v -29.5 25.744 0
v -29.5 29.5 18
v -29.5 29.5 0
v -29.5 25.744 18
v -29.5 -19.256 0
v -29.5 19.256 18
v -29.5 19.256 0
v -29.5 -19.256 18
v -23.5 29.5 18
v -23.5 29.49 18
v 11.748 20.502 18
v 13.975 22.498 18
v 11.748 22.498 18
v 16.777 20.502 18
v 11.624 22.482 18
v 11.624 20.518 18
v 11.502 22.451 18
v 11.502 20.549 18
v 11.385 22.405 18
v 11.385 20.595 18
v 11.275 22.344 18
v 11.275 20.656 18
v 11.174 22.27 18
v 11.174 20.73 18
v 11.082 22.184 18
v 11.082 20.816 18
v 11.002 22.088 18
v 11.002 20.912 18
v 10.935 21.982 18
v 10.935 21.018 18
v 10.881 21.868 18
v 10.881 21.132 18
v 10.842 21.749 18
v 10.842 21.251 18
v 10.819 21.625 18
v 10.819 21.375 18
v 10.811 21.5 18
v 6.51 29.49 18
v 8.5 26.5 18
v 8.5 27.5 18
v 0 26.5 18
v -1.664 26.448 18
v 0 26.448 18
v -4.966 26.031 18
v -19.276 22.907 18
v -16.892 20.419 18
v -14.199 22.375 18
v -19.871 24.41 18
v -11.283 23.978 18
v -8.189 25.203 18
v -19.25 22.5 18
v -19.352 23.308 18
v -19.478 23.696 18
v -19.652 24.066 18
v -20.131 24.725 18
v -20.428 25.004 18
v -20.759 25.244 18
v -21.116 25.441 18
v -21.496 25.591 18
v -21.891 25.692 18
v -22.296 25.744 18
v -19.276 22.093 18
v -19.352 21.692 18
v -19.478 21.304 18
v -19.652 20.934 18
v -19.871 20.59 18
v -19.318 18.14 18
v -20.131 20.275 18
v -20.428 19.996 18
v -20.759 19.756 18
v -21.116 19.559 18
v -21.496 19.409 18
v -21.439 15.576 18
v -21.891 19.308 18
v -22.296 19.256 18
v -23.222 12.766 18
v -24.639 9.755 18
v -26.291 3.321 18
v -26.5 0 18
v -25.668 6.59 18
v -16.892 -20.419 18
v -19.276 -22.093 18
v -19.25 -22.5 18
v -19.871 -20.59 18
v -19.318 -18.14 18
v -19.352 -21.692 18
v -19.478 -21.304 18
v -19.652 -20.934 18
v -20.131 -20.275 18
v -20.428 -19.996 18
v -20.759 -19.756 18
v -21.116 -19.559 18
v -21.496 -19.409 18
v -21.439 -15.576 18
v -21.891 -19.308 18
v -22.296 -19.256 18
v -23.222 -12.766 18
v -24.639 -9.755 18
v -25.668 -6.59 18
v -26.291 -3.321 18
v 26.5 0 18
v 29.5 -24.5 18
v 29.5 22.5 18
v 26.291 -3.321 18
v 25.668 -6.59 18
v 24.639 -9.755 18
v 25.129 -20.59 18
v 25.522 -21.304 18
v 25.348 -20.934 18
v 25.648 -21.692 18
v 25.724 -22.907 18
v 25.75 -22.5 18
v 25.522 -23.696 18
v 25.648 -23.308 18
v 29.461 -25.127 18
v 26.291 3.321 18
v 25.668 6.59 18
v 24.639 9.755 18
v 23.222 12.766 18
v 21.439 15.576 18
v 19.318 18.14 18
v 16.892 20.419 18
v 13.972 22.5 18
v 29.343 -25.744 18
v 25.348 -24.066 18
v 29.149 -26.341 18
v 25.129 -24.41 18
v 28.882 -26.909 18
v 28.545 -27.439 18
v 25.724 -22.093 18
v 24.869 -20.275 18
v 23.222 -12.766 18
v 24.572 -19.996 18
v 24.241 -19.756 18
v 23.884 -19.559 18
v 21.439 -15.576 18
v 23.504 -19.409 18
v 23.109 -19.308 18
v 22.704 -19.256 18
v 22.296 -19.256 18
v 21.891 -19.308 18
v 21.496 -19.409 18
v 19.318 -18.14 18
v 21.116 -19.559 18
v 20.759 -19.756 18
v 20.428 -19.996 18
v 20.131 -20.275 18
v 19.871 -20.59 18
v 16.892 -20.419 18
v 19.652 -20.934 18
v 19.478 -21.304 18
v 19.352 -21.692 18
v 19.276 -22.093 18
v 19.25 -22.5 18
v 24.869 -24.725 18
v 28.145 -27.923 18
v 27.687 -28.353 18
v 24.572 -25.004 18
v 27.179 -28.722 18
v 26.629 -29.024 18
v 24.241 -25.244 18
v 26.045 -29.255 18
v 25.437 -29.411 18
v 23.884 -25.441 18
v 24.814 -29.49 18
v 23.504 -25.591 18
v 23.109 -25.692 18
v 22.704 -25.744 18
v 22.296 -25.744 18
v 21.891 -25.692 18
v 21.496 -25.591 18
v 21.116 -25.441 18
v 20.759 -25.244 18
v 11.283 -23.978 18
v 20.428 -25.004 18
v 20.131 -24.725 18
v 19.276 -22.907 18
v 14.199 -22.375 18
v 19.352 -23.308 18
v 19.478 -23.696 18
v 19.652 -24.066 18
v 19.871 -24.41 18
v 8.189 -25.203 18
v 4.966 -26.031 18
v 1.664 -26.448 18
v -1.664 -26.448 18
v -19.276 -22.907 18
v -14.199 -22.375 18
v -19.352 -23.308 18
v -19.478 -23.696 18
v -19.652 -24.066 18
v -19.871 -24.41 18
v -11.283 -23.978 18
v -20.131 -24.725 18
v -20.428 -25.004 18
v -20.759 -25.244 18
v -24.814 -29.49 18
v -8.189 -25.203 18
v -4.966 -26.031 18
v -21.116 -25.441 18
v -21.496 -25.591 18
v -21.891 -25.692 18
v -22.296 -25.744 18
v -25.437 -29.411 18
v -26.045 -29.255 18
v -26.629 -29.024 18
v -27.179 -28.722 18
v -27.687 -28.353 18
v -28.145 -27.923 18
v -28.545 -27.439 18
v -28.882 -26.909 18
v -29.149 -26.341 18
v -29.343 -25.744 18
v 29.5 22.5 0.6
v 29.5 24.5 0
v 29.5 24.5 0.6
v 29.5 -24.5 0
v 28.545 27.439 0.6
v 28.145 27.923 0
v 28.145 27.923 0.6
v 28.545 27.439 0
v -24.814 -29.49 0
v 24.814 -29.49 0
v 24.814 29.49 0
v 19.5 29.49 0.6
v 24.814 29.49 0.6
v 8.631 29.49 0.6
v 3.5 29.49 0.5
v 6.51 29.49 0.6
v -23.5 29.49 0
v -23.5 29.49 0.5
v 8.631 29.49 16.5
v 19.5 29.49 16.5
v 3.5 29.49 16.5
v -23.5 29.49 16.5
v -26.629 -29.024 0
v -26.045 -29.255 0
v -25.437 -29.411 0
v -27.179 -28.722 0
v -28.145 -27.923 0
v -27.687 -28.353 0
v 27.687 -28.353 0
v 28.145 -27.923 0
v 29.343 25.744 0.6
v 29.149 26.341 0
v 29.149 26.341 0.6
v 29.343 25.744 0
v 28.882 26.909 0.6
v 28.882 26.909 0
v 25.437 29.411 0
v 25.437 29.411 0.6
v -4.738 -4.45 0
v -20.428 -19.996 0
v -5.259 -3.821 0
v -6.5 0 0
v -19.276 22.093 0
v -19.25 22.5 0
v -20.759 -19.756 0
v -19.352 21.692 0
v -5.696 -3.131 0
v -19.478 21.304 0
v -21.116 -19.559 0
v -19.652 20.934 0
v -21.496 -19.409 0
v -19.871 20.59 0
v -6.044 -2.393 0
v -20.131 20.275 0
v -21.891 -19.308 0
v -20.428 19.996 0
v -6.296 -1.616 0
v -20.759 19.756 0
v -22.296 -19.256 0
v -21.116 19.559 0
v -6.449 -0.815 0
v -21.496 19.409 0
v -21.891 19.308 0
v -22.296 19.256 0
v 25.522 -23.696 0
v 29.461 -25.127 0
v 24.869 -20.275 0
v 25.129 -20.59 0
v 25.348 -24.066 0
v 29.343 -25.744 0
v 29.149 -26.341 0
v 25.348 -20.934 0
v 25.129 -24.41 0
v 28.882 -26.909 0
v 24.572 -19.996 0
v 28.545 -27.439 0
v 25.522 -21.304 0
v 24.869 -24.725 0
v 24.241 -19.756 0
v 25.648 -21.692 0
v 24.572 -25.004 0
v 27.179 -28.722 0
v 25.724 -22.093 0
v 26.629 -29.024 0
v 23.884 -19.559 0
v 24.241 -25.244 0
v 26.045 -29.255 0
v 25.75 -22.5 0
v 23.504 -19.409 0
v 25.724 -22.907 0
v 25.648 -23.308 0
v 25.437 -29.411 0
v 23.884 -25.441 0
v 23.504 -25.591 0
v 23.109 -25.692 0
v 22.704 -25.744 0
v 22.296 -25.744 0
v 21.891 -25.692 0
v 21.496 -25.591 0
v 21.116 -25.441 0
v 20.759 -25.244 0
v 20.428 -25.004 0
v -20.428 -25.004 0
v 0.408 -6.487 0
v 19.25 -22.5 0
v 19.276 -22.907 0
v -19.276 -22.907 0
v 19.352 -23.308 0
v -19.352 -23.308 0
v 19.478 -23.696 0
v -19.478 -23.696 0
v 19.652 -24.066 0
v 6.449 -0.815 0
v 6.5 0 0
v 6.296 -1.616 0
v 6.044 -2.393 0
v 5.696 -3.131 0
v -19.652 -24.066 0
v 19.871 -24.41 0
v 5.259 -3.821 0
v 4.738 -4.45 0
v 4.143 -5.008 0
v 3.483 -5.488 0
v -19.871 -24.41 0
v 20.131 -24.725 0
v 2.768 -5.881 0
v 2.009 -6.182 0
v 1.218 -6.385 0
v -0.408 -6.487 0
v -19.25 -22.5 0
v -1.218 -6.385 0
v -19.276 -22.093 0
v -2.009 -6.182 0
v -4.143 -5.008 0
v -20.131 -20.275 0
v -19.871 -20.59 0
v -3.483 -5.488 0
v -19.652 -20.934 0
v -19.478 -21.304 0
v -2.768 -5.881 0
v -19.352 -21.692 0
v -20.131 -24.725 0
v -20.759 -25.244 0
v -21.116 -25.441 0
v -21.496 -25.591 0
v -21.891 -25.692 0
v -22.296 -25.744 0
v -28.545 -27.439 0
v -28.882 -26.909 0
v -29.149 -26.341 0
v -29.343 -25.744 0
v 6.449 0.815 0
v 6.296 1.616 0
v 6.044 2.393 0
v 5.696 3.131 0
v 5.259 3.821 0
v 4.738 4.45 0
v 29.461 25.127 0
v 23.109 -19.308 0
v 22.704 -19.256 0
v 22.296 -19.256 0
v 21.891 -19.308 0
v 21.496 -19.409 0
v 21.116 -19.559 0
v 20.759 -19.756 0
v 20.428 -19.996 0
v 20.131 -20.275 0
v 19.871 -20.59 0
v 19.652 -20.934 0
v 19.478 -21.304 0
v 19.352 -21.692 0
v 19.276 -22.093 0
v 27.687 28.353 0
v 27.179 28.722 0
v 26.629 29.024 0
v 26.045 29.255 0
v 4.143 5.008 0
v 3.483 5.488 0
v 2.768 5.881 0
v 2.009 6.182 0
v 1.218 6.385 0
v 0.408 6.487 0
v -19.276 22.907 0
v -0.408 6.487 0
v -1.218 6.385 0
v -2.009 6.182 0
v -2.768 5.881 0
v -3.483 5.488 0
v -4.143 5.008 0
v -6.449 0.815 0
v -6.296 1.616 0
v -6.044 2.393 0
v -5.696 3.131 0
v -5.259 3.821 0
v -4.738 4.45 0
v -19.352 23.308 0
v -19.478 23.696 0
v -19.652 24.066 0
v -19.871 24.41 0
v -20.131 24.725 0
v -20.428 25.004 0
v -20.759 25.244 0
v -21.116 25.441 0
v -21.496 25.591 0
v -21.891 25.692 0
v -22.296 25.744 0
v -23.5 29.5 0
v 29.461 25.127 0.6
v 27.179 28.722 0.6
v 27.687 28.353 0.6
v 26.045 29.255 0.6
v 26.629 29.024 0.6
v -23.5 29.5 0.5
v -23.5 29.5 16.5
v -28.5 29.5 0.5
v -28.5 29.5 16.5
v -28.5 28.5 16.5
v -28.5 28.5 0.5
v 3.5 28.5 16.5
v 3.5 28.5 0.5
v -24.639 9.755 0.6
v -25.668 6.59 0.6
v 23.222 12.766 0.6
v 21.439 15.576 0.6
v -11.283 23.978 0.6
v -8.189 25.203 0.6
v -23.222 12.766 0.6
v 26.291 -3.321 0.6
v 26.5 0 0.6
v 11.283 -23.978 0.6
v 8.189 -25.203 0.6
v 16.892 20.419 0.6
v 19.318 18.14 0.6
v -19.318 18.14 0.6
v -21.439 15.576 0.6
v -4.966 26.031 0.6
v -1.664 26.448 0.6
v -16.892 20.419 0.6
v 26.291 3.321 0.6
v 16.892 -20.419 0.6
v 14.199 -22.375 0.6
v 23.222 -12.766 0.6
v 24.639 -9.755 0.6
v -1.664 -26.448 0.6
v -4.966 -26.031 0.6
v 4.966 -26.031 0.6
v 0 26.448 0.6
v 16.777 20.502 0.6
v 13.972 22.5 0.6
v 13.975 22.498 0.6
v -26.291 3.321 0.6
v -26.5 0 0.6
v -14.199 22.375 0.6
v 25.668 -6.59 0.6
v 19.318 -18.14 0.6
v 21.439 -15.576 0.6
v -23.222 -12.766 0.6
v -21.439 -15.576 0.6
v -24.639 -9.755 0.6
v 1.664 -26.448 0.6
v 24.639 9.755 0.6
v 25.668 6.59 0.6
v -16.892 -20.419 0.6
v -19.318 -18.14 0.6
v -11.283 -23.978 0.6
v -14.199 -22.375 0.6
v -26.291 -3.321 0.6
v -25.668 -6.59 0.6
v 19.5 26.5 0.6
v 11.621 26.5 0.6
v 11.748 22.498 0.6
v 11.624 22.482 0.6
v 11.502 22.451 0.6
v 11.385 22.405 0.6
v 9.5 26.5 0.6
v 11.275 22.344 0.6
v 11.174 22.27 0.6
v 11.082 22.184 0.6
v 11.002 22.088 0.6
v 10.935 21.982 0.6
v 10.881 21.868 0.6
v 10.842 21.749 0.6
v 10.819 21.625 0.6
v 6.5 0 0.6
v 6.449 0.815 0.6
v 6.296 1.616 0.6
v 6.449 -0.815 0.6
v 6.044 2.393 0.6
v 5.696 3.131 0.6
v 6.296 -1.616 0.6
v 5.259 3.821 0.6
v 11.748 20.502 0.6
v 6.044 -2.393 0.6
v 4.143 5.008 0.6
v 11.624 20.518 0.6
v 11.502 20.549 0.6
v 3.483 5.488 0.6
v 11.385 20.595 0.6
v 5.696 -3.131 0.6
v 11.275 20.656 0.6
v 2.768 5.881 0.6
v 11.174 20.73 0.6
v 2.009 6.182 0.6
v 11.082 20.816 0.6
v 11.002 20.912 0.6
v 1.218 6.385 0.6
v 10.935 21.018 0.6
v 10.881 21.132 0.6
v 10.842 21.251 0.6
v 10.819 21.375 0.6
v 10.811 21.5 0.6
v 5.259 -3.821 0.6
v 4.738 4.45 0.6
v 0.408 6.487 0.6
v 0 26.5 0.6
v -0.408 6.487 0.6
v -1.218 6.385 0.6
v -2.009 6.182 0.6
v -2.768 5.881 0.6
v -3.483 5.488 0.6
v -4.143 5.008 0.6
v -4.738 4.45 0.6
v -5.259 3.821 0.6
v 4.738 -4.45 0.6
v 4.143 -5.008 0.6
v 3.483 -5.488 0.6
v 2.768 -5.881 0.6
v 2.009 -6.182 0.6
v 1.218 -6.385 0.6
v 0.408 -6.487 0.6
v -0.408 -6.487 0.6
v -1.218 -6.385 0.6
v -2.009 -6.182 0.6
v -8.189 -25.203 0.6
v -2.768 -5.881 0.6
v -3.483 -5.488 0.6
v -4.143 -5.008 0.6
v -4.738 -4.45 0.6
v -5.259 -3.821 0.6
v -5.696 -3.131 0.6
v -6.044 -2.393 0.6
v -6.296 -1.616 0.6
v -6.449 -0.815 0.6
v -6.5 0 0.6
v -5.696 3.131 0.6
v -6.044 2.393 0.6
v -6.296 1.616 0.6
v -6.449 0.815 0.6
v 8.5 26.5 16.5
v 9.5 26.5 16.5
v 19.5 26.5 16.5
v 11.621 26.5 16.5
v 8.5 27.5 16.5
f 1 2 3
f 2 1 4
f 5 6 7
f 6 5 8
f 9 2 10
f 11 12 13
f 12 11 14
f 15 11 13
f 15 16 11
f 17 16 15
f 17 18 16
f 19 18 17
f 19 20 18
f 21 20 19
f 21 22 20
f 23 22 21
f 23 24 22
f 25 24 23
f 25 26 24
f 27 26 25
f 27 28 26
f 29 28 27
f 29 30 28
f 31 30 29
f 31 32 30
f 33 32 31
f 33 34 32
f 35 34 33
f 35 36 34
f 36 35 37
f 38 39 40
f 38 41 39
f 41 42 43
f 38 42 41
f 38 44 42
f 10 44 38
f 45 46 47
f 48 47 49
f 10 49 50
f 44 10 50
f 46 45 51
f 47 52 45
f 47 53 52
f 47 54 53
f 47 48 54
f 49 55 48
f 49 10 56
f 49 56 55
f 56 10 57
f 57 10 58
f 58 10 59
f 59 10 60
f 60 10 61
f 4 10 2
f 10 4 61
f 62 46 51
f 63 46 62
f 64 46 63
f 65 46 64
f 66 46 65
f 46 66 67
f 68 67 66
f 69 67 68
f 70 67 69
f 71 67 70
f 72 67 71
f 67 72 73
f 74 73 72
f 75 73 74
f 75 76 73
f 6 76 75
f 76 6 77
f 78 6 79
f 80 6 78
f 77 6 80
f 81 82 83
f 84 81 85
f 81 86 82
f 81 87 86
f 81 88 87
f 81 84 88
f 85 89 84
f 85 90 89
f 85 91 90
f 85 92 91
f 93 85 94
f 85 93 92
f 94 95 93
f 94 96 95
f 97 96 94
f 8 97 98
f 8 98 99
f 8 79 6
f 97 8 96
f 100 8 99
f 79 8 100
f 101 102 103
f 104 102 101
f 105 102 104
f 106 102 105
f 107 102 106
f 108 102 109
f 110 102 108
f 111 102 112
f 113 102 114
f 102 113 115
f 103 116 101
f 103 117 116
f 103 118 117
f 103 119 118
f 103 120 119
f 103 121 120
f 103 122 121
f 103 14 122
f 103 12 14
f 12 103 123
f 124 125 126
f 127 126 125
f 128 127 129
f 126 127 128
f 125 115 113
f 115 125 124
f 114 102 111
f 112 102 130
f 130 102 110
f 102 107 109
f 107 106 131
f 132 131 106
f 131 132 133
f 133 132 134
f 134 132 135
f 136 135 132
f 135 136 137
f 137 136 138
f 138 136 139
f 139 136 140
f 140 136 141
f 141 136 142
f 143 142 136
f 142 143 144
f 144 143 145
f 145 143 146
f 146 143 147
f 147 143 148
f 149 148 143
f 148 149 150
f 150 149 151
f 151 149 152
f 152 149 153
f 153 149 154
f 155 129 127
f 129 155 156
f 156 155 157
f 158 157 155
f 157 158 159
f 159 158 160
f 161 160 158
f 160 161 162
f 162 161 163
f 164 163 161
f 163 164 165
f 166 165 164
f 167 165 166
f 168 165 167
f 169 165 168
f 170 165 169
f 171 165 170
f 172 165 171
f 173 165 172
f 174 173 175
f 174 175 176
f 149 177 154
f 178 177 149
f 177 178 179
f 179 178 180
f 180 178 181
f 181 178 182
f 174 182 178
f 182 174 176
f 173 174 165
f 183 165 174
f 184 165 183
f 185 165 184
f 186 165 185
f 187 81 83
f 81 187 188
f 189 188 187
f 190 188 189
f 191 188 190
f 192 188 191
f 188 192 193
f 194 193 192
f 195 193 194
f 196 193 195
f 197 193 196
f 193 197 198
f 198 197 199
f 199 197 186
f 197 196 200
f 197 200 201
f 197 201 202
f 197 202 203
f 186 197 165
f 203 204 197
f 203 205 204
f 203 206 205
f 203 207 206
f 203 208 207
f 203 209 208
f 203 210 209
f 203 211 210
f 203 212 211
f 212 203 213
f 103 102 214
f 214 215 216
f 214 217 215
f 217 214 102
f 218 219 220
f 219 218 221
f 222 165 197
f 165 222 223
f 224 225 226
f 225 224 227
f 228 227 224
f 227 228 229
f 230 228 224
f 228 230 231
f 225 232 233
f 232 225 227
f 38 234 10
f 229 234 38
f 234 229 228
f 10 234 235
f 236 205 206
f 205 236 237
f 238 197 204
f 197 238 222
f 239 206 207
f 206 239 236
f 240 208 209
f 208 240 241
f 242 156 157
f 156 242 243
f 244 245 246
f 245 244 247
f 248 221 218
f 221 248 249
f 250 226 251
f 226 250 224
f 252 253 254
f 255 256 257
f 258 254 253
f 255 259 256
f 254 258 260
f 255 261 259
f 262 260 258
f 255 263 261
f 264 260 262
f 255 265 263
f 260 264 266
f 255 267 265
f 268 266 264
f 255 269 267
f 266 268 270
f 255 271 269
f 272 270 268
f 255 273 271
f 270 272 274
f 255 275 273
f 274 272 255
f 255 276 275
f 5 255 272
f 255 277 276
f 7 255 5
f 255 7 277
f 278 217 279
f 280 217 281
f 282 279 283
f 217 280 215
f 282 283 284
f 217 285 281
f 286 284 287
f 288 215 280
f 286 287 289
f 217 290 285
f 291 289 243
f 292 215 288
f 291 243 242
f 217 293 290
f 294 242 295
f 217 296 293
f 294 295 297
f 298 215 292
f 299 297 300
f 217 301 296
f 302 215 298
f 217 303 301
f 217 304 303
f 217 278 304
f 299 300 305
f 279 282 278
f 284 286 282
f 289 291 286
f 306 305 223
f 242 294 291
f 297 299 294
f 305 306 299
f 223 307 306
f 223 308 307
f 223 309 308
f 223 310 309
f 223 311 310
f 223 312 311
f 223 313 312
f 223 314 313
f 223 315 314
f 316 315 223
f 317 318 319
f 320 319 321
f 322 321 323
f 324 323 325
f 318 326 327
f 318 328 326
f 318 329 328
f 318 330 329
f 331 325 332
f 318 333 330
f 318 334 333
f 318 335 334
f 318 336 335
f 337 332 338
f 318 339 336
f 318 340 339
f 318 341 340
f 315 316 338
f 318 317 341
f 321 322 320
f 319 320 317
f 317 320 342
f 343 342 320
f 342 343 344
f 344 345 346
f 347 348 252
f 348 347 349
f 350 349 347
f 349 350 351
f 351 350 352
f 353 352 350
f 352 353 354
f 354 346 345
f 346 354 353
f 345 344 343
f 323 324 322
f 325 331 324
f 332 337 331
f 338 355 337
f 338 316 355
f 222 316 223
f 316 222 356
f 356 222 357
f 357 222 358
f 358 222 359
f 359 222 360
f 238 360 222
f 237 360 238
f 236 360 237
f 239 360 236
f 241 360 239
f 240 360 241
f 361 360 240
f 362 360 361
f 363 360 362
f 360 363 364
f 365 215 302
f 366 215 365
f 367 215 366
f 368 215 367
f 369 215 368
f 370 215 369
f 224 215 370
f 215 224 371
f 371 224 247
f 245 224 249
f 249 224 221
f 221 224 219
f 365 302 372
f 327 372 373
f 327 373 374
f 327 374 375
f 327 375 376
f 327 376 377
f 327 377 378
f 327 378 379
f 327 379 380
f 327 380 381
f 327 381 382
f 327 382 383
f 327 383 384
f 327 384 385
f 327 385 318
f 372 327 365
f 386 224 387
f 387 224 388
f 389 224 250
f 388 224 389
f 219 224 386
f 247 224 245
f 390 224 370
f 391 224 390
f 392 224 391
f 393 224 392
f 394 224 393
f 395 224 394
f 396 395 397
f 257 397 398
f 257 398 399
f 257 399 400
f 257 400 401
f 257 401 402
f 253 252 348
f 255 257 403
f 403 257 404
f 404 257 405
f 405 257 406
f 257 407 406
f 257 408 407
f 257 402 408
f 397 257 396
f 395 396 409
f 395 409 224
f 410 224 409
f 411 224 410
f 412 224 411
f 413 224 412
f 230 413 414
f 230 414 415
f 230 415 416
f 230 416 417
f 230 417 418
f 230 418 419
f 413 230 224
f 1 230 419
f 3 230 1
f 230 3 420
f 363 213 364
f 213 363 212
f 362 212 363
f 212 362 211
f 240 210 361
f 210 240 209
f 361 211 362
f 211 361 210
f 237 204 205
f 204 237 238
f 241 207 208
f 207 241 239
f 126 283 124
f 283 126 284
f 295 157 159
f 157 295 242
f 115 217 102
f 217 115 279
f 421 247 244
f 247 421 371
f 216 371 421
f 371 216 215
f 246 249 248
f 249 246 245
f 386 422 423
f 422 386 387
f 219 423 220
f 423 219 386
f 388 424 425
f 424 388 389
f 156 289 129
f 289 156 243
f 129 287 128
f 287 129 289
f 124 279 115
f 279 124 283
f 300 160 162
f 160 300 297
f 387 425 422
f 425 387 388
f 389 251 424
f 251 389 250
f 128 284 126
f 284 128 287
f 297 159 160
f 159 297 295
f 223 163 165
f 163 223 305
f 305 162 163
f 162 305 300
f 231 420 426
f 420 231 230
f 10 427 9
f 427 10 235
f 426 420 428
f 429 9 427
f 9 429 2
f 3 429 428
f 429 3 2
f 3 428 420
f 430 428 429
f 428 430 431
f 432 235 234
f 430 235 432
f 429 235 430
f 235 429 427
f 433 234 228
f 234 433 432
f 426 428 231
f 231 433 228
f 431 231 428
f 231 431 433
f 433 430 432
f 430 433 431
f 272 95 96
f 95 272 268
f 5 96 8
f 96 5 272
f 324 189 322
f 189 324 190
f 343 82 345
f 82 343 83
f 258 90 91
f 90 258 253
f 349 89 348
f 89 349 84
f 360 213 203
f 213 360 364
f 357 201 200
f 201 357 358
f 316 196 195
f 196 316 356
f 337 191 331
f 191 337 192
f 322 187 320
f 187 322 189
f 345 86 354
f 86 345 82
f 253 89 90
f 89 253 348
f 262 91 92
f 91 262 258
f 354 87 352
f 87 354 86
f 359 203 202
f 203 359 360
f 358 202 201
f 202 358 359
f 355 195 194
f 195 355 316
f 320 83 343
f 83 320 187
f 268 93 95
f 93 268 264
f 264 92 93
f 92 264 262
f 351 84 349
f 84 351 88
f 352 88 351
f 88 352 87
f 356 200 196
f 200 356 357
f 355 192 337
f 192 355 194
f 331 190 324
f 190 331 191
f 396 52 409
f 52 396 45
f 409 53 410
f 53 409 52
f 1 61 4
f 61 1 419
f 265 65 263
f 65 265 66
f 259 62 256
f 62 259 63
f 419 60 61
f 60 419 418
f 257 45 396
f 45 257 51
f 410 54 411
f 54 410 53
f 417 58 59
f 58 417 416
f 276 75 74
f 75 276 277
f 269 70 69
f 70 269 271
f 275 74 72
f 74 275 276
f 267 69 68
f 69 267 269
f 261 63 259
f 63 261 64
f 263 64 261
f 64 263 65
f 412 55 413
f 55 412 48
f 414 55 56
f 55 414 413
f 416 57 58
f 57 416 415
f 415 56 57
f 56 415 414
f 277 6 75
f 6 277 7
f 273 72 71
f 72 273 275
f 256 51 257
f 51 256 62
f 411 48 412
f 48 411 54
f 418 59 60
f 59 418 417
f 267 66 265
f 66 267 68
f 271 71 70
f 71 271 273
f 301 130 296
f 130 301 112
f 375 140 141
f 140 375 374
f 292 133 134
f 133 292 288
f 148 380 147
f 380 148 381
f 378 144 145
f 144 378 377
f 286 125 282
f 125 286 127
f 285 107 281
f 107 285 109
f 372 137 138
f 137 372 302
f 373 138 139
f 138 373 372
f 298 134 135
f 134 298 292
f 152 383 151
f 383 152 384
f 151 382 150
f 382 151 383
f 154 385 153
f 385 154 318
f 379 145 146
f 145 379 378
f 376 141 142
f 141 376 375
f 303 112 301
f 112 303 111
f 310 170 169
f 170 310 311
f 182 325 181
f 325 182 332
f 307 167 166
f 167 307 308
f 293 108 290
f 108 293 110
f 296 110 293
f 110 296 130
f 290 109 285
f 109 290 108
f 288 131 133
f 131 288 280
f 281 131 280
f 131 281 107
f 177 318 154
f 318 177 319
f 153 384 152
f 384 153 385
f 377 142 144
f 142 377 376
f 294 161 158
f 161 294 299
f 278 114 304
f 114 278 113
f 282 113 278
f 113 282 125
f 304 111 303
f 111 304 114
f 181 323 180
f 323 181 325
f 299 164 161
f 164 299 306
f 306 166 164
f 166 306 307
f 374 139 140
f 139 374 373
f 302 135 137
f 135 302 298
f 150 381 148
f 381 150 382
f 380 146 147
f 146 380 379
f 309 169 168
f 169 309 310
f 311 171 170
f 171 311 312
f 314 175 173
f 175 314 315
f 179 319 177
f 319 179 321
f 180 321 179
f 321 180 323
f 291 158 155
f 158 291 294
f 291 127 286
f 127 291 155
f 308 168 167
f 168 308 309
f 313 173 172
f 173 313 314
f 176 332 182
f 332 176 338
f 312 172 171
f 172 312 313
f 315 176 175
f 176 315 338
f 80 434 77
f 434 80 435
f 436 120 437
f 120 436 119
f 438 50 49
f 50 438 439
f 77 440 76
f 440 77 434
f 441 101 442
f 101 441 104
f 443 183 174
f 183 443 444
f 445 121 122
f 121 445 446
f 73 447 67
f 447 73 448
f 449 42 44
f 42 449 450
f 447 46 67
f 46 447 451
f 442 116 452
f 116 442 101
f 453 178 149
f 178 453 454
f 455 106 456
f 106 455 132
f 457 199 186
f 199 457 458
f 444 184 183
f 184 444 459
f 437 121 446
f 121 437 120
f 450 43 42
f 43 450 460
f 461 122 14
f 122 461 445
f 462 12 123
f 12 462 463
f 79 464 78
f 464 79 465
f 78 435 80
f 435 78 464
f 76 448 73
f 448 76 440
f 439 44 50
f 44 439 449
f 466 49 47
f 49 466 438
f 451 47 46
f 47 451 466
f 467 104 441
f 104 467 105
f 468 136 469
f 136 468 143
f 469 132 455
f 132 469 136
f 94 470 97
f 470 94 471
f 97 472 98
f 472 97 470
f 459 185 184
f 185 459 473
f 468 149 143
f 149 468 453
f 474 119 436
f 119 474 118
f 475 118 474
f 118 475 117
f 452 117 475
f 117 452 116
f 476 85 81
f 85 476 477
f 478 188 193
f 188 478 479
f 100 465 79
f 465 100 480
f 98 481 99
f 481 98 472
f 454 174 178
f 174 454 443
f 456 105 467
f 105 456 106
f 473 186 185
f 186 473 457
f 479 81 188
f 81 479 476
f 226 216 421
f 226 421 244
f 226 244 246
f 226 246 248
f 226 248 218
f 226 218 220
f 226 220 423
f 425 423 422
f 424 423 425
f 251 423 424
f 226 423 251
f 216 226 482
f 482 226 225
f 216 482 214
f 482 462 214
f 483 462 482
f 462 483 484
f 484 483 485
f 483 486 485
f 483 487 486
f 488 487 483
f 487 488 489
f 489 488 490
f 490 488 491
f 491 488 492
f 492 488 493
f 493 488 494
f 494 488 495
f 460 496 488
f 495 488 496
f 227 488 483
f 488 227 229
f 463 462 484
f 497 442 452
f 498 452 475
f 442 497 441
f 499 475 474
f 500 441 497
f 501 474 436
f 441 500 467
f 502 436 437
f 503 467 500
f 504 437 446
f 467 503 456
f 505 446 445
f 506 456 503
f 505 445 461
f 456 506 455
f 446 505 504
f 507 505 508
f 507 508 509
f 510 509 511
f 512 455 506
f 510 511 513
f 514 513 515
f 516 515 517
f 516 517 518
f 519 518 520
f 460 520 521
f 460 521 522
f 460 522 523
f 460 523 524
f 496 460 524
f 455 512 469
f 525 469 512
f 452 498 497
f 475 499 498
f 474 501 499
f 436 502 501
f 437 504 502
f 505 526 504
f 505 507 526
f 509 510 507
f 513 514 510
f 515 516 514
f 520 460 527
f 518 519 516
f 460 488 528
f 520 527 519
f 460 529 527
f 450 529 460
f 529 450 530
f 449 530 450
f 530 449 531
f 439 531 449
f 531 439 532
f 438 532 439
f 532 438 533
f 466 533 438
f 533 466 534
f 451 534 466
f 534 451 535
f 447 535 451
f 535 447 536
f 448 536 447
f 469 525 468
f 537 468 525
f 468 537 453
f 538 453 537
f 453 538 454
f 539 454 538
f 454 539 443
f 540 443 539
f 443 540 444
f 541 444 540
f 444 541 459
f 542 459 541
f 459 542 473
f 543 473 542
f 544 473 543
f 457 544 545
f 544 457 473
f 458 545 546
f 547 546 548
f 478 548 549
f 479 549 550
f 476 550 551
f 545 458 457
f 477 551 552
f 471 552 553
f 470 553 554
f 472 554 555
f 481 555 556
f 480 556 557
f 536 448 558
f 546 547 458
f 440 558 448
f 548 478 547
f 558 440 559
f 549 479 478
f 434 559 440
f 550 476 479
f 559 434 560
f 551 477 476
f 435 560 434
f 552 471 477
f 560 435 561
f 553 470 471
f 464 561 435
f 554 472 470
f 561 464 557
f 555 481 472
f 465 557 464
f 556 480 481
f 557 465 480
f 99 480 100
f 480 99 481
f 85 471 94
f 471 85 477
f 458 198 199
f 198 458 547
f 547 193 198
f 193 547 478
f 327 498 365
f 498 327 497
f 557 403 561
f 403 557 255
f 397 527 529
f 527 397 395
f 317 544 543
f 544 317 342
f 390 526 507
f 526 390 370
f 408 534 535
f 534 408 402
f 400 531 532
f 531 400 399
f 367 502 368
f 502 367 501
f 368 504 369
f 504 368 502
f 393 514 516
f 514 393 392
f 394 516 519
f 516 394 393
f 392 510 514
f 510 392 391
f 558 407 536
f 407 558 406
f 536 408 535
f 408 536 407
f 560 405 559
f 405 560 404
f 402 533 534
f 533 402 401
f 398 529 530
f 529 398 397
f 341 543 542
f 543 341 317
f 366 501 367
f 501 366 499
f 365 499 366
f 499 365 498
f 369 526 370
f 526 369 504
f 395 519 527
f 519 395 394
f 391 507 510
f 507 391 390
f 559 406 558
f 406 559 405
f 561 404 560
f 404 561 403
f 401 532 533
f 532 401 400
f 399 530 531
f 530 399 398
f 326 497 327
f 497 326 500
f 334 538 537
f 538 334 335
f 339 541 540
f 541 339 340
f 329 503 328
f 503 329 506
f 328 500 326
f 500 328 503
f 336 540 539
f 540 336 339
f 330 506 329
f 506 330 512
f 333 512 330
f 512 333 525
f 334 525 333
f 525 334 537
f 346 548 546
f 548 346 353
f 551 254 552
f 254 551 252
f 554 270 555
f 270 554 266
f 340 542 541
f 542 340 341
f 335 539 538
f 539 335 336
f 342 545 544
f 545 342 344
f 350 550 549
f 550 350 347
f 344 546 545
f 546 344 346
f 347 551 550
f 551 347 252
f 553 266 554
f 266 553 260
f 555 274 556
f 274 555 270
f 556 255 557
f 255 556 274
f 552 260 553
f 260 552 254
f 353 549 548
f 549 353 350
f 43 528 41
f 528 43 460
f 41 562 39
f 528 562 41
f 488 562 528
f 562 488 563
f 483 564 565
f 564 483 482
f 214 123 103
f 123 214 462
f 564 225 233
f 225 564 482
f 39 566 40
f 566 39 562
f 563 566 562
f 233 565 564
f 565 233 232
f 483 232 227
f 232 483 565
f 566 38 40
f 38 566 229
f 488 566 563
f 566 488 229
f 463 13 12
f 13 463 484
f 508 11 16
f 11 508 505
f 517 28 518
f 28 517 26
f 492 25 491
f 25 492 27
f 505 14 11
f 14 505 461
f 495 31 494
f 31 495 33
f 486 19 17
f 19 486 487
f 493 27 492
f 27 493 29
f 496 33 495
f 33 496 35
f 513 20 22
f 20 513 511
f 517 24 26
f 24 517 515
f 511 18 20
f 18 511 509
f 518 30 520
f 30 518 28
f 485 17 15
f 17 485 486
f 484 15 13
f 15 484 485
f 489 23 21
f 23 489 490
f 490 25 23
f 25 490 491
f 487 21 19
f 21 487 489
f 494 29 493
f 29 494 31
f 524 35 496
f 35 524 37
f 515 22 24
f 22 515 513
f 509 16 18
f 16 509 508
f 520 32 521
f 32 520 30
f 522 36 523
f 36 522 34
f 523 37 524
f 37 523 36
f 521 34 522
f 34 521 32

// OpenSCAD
$fn = 50;


union() {
	difference() {
		union() {
			translate(v = [0, 0, 0]) {
				rotate(a = [0, 0, 0]) {
					hull() {
						translate(v = [-24.5000000000, 24.5000000000, 0]) {
							rotate(a = [0, 0, 0]) {
								translate(v = [0, 0, 0]) {
									rotate(a = [0, 0, 0]) {
										cylinder(h = 18, r = 5);
									}
								}
							}
						}
						translate(v = [24.5000000000, 24.5000000000, 0]) {
							rotate(a = [0, 0, 0]) {
								translate(v = [0, 0, 0]) {
									rotate(a = [0, 0, 0]) {
										cylinder(h = 18, r = 5);
									}
								}
							}
						}
						translate(v = [-24.5000000000, -24.5000000000, 0]) {
							rotate(a = [0, 0, 0]) {
								translate(v = [0, 0, 0]) {
									rotate(a = [0, 0, 0]) {
										cylinder(h = 18, r = 5);
									}
								}
							}
						}
						translate(v = [24.5000000000, -24.5000000000, 0]) {
							rotate(a = [0, 0, 0]) {
								translate(v = [0, 0, 0]) {
									rotate(a = [0, 0, 0]) {
										cylinder(h = 18, r = 5);
									}
								}
							}
						}
					}
				}
			}
			translate(v = [-29.5000000000, 23.5000000000, 0]) {
				rotate(a = [0, 0, 0]) {
					cube(size = [6, 6, 18]);
				}
			}
		}
		union() {
			#translate(v = [-28.5000000000, 28.5000000000, 0.5000000000]) {
				rotate(a = [0, 0, 0]) {
					cube(size = [32, 1, 16]);
				}
			}
			translate(v = [-30.0000000000, -22.5000000000, -125]) {
				rotate(a = [0, 0, 0]) {
					hull() {
						translate(v = [7.5000000000, 0, 0]) {
							rotate(a = [0, 0, 0]) {
								translate(v = [0, 0, 0]) {
									rotate(a = [0, 0, 0]) {
										cylinder(h = 250, r = 3.2500000000);
									}
								}
							}
						}
						translate(v = [-7.5000000000, 0, 0]) {
							rotate(a = [0, 0, 0]) {
								translate(v = [0, 0, 0]) {
									rotate(a = [0, 0, 0]) {
										cylinder(h = 250, r = 3.2500000000);
									}
								}
							}
						}
					}
				}
			}
			translate(v = [-30.0000000000, 22.5000000000, -125]) {
				rotate(a = [0, 0, 0]) {
					hull() {
						translate(v = [7.5000000000, 0, 0]) {
							rotate(a = [0, 0, 0]) {
								translate(v = [0, 0, 0]) {
									rotate(a = [0, 0, 0]) {
										cylinder(h = 250, r = 3.2500000000);
									}
								}
							}
						}
						translate(v = [-7.5000000000, 0, 0]) {
							rotate(a = [0, 0, 0]) {
								translate(v = [0, 0, 0]) {
									rotate(a = [0, 0, 0]) {
										cylinder(h = 250, r = 3.2500000000);
									}
								}
							}
						}
					}
				}
			}
			translate(v = [22.5000000000, -22.5000000000, -125.0000000000]) {
				rotate(a = [0, 0, 0]) {
					cylinder(h = 250, r = 3.2500000000);
				}
			}
			translate(v = [0, 0, 0.6000000000]) {
				rotate(a = [0, 0, 0]) {
					cylinder(h = 20.4000000000, r = 26.5000000000);
				}
			}
			translate(v = [0, 0, -9.0000000000]) {
				rotate(a = [0, 0, 0]) {
					cylinder(h = 18, r = 6.5000000000);
				}
			}
			translate(v = [0.0000000000, 22.5000000000, 0.6000000000]) {
				rotate(a = [0, 0, 0]) {
					cube(size = [29.5000000000, 4, 20.4000000000]);
				}
			}
			translate(v = [19.5000000000, 22.5000000000, 0.6000000000]) {
				rotate(a = [0, 0, 0]) {
					cube(size = [10, 7, 20.4000000000]);
				}
			}
			translate(v = [8.5000000000, 22.5000000000, 16.5000000000]) {
				rotate(a = [0, 0, 0]) {
					cube(size = [21, 7, 1.5000000000]);
				}
			}
			translate(v = [5.7500000000, 30.2500000000, 0.6000000000]) {
				rotate(a = [0, 0, -45]) {
					cube(size = [7.5000000000, 1.5000000000, 20.4000000000]);
				}
			}
			translate(v = [5.0610000000, 20.5000000000, 0.6000000000]) {
				rotate(a = [0, 0, 0]) {
					cube(size = [7.5000000000, 2, 17.4000000000]);
				}
			}
		}
	}
	union() {
		translate(v = [14.3110000000, 21.5000000000, 0]) {
			rotate(a = [0, 0, 0]) {
				hull() {
					translate(v = [2.5000000000, 0, 0]) {
						rotate(a = [0, 0, 0]) {
							#translate(v = [0, 0, 0]) {
								rotate(a = [0, 0, 0]) {
									cylinder(h = 18, r = 1.0000000000);
								}
							}
						}
					}
					translate(v = [-2.5000000000, 0, 0]) {
						rotate(a = [0, 0, 0]) {
							#translate(v = [0, 0, 0]) {
								rotate(a = [0, 0, 0]) {
									cylinder(h = 18, r = 1.0000000000);
								}
							}
						}
					}
				}
			}
		}
	}
}
